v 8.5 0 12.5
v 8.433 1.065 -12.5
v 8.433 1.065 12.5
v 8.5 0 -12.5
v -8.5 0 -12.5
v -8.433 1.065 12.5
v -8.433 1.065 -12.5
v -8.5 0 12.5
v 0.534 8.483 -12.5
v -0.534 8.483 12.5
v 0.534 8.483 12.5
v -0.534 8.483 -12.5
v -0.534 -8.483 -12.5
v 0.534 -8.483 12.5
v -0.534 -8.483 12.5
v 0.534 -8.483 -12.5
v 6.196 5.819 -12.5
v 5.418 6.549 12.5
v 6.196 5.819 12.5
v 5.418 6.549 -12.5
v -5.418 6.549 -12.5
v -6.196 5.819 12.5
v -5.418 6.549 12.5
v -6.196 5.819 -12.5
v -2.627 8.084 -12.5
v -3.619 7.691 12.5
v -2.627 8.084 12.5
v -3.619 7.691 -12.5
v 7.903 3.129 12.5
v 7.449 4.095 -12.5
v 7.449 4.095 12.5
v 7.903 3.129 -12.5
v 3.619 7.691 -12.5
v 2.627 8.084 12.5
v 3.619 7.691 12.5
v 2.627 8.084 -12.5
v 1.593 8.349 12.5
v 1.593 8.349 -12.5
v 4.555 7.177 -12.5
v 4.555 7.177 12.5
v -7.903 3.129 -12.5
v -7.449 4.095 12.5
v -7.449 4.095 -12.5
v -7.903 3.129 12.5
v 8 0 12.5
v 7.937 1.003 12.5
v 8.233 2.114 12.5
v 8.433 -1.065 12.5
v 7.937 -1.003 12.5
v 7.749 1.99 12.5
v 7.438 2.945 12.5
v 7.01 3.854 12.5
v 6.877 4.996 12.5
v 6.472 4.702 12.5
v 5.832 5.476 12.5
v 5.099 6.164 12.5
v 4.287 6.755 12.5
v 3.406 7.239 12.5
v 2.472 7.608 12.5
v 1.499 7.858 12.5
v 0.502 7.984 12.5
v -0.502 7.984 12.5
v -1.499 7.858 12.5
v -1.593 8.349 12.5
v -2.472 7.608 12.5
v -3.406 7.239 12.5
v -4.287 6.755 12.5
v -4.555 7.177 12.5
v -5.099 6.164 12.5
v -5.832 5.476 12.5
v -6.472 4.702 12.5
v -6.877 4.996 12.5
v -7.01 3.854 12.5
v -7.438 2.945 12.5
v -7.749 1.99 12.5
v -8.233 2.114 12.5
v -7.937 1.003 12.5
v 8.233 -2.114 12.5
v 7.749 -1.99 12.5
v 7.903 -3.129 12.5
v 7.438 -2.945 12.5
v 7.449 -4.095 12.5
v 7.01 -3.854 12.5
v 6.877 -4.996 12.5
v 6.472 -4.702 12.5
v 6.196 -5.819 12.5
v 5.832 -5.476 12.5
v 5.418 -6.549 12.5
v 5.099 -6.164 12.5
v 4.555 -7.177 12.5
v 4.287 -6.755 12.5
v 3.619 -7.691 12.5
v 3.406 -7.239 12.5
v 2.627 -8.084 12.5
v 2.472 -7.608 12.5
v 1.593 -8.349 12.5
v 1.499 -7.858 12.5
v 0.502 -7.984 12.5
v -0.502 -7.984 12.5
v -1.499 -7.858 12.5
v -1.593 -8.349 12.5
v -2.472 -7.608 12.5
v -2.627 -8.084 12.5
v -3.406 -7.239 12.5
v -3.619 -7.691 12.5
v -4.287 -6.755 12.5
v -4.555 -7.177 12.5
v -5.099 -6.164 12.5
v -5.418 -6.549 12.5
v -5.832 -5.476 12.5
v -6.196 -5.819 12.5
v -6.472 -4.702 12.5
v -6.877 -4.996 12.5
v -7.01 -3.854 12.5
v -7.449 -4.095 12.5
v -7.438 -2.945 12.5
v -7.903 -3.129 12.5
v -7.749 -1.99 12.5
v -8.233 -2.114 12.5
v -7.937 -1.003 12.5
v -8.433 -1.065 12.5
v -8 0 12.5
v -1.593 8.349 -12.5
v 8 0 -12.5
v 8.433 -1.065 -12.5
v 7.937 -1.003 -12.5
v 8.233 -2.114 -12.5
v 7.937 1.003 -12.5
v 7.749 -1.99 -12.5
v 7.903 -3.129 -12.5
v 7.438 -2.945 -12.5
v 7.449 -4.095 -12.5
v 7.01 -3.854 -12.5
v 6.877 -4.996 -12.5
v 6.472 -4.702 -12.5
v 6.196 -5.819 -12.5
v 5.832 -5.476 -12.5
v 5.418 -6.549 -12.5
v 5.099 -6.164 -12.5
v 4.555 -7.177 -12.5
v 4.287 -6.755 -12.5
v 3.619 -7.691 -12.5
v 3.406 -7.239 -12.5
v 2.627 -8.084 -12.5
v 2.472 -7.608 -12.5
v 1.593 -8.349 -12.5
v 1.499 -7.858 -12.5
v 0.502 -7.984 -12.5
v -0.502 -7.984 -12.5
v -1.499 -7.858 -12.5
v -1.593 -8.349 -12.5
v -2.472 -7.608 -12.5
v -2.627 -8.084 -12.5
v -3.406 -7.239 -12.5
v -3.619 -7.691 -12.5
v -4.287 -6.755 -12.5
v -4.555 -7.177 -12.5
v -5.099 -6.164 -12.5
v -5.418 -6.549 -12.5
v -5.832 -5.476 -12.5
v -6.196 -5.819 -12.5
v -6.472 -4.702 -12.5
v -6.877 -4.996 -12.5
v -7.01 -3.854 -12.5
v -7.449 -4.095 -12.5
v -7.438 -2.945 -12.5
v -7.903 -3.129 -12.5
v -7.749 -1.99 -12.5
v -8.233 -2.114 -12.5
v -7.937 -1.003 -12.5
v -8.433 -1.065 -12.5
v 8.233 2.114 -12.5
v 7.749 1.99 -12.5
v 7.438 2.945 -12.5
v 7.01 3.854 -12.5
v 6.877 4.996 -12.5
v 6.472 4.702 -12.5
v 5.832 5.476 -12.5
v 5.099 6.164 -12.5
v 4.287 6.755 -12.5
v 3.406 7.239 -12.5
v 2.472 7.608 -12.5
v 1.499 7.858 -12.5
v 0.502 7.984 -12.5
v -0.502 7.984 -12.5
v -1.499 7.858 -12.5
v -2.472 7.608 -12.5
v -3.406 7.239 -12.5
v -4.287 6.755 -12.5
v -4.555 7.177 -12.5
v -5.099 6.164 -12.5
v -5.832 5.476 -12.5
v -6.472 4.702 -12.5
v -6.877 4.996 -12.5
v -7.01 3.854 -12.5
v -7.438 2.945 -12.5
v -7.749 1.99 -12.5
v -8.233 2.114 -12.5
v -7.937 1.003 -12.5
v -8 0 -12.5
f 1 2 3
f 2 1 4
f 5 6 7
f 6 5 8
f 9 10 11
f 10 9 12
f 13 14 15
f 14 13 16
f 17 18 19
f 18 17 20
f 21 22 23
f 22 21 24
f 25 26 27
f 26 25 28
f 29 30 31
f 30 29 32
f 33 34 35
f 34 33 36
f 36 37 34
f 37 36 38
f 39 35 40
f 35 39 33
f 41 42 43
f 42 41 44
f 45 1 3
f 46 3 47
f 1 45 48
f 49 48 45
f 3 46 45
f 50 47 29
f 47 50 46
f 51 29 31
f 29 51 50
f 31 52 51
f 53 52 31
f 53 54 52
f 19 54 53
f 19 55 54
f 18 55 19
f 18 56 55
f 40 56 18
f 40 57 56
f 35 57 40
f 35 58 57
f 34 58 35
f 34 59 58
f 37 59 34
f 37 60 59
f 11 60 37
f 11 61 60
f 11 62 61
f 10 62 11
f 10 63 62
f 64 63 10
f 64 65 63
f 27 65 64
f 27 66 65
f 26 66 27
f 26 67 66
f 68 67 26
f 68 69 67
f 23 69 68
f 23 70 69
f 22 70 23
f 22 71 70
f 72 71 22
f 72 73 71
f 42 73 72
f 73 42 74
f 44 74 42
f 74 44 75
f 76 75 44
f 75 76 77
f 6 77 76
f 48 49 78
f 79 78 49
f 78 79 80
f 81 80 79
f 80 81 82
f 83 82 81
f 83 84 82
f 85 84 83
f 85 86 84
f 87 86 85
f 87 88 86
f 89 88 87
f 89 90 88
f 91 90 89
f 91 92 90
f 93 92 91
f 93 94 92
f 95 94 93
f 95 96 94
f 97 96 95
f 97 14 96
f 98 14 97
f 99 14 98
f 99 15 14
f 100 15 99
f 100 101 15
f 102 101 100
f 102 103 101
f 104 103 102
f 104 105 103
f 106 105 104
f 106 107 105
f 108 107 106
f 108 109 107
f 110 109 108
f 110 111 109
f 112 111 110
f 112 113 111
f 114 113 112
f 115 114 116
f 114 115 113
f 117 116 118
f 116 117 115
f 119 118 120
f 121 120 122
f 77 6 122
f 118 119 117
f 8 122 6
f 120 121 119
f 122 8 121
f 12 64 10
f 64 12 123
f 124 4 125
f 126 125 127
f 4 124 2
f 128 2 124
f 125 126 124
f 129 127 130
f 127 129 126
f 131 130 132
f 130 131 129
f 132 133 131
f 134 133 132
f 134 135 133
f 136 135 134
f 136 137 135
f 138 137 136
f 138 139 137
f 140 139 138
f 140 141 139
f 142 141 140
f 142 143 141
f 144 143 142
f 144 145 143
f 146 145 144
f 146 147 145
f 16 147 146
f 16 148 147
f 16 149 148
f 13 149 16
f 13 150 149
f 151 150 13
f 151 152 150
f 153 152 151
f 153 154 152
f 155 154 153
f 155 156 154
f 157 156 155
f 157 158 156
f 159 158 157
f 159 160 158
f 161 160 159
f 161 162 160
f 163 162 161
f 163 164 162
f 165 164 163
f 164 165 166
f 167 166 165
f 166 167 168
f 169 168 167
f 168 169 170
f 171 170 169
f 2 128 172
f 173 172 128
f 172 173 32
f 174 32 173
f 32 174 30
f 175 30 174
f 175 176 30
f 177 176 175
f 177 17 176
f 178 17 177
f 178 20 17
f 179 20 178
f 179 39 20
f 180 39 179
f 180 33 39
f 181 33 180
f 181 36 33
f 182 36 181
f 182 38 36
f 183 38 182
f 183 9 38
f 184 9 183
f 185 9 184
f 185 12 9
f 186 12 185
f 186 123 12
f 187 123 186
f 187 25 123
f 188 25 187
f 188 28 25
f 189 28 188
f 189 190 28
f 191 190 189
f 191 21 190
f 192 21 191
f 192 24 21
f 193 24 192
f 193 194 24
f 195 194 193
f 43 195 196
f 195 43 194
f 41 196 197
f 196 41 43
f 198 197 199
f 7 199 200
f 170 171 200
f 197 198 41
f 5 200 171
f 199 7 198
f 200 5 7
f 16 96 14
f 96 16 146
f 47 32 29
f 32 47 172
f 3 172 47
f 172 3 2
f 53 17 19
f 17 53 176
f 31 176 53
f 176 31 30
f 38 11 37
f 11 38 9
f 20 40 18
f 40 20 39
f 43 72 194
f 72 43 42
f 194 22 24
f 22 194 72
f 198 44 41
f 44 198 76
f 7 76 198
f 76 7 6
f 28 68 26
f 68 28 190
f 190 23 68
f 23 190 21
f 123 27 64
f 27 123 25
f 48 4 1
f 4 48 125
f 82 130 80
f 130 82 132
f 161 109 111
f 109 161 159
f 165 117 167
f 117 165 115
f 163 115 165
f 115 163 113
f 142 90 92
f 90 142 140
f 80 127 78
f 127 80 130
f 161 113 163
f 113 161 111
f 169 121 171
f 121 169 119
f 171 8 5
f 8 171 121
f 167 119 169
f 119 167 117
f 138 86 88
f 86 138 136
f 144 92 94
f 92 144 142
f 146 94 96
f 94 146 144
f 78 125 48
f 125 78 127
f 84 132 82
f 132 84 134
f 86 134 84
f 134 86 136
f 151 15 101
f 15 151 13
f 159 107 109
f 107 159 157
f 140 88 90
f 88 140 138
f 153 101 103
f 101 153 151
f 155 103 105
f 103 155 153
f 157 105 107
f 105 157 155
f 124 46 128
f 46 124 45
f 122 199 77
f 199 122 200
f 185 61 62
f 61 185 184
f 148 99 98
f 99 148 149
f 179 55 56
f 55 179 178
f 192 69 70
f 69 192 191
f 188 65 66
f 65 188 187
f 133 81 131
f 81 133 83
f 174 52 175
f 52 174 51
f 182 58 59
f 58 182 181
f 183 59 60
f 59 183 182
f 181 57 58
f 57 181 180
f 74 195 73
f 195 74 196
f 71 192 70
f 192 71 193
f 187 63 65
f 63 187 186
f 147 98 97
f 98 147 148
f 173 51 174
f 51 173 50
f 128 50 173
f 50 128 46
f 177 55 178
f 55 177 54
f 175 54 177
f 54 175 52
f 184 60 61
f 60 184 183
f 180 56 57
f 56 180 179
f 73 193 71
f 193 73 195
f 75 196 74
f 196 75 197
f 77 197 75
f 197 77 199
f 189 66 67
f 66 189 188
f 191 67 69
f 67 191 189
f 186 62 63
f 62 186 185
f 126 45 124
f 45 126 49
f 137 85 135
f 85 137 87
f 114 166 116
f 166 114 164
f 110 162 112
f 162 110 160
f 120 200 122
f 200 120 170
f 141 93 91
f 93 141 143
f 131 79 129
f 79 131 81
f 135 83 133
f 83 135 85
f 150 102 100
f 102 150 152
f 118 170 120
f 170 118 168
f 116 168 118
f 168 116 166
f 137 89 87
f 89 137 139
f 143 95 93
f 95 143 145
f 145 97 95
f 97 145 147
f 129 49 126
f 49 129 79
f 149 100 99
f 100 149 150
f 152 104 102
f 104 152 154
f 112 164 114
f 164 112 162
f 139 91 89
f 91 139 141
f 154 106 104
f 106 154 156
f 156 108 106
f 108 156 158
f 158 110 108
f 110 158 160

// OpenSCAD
$fn = 50;


difference() {
	union() {
		translate(v = [0, 0, -12.5000000000]) {
			cylinder(h = 25, r = 8.5000000000);
		}
	}
	union() {
		translate(v = [0, 0, -100.0000000000]) {
			cylinder(h = 200, r = 8);
		}
	}
}
